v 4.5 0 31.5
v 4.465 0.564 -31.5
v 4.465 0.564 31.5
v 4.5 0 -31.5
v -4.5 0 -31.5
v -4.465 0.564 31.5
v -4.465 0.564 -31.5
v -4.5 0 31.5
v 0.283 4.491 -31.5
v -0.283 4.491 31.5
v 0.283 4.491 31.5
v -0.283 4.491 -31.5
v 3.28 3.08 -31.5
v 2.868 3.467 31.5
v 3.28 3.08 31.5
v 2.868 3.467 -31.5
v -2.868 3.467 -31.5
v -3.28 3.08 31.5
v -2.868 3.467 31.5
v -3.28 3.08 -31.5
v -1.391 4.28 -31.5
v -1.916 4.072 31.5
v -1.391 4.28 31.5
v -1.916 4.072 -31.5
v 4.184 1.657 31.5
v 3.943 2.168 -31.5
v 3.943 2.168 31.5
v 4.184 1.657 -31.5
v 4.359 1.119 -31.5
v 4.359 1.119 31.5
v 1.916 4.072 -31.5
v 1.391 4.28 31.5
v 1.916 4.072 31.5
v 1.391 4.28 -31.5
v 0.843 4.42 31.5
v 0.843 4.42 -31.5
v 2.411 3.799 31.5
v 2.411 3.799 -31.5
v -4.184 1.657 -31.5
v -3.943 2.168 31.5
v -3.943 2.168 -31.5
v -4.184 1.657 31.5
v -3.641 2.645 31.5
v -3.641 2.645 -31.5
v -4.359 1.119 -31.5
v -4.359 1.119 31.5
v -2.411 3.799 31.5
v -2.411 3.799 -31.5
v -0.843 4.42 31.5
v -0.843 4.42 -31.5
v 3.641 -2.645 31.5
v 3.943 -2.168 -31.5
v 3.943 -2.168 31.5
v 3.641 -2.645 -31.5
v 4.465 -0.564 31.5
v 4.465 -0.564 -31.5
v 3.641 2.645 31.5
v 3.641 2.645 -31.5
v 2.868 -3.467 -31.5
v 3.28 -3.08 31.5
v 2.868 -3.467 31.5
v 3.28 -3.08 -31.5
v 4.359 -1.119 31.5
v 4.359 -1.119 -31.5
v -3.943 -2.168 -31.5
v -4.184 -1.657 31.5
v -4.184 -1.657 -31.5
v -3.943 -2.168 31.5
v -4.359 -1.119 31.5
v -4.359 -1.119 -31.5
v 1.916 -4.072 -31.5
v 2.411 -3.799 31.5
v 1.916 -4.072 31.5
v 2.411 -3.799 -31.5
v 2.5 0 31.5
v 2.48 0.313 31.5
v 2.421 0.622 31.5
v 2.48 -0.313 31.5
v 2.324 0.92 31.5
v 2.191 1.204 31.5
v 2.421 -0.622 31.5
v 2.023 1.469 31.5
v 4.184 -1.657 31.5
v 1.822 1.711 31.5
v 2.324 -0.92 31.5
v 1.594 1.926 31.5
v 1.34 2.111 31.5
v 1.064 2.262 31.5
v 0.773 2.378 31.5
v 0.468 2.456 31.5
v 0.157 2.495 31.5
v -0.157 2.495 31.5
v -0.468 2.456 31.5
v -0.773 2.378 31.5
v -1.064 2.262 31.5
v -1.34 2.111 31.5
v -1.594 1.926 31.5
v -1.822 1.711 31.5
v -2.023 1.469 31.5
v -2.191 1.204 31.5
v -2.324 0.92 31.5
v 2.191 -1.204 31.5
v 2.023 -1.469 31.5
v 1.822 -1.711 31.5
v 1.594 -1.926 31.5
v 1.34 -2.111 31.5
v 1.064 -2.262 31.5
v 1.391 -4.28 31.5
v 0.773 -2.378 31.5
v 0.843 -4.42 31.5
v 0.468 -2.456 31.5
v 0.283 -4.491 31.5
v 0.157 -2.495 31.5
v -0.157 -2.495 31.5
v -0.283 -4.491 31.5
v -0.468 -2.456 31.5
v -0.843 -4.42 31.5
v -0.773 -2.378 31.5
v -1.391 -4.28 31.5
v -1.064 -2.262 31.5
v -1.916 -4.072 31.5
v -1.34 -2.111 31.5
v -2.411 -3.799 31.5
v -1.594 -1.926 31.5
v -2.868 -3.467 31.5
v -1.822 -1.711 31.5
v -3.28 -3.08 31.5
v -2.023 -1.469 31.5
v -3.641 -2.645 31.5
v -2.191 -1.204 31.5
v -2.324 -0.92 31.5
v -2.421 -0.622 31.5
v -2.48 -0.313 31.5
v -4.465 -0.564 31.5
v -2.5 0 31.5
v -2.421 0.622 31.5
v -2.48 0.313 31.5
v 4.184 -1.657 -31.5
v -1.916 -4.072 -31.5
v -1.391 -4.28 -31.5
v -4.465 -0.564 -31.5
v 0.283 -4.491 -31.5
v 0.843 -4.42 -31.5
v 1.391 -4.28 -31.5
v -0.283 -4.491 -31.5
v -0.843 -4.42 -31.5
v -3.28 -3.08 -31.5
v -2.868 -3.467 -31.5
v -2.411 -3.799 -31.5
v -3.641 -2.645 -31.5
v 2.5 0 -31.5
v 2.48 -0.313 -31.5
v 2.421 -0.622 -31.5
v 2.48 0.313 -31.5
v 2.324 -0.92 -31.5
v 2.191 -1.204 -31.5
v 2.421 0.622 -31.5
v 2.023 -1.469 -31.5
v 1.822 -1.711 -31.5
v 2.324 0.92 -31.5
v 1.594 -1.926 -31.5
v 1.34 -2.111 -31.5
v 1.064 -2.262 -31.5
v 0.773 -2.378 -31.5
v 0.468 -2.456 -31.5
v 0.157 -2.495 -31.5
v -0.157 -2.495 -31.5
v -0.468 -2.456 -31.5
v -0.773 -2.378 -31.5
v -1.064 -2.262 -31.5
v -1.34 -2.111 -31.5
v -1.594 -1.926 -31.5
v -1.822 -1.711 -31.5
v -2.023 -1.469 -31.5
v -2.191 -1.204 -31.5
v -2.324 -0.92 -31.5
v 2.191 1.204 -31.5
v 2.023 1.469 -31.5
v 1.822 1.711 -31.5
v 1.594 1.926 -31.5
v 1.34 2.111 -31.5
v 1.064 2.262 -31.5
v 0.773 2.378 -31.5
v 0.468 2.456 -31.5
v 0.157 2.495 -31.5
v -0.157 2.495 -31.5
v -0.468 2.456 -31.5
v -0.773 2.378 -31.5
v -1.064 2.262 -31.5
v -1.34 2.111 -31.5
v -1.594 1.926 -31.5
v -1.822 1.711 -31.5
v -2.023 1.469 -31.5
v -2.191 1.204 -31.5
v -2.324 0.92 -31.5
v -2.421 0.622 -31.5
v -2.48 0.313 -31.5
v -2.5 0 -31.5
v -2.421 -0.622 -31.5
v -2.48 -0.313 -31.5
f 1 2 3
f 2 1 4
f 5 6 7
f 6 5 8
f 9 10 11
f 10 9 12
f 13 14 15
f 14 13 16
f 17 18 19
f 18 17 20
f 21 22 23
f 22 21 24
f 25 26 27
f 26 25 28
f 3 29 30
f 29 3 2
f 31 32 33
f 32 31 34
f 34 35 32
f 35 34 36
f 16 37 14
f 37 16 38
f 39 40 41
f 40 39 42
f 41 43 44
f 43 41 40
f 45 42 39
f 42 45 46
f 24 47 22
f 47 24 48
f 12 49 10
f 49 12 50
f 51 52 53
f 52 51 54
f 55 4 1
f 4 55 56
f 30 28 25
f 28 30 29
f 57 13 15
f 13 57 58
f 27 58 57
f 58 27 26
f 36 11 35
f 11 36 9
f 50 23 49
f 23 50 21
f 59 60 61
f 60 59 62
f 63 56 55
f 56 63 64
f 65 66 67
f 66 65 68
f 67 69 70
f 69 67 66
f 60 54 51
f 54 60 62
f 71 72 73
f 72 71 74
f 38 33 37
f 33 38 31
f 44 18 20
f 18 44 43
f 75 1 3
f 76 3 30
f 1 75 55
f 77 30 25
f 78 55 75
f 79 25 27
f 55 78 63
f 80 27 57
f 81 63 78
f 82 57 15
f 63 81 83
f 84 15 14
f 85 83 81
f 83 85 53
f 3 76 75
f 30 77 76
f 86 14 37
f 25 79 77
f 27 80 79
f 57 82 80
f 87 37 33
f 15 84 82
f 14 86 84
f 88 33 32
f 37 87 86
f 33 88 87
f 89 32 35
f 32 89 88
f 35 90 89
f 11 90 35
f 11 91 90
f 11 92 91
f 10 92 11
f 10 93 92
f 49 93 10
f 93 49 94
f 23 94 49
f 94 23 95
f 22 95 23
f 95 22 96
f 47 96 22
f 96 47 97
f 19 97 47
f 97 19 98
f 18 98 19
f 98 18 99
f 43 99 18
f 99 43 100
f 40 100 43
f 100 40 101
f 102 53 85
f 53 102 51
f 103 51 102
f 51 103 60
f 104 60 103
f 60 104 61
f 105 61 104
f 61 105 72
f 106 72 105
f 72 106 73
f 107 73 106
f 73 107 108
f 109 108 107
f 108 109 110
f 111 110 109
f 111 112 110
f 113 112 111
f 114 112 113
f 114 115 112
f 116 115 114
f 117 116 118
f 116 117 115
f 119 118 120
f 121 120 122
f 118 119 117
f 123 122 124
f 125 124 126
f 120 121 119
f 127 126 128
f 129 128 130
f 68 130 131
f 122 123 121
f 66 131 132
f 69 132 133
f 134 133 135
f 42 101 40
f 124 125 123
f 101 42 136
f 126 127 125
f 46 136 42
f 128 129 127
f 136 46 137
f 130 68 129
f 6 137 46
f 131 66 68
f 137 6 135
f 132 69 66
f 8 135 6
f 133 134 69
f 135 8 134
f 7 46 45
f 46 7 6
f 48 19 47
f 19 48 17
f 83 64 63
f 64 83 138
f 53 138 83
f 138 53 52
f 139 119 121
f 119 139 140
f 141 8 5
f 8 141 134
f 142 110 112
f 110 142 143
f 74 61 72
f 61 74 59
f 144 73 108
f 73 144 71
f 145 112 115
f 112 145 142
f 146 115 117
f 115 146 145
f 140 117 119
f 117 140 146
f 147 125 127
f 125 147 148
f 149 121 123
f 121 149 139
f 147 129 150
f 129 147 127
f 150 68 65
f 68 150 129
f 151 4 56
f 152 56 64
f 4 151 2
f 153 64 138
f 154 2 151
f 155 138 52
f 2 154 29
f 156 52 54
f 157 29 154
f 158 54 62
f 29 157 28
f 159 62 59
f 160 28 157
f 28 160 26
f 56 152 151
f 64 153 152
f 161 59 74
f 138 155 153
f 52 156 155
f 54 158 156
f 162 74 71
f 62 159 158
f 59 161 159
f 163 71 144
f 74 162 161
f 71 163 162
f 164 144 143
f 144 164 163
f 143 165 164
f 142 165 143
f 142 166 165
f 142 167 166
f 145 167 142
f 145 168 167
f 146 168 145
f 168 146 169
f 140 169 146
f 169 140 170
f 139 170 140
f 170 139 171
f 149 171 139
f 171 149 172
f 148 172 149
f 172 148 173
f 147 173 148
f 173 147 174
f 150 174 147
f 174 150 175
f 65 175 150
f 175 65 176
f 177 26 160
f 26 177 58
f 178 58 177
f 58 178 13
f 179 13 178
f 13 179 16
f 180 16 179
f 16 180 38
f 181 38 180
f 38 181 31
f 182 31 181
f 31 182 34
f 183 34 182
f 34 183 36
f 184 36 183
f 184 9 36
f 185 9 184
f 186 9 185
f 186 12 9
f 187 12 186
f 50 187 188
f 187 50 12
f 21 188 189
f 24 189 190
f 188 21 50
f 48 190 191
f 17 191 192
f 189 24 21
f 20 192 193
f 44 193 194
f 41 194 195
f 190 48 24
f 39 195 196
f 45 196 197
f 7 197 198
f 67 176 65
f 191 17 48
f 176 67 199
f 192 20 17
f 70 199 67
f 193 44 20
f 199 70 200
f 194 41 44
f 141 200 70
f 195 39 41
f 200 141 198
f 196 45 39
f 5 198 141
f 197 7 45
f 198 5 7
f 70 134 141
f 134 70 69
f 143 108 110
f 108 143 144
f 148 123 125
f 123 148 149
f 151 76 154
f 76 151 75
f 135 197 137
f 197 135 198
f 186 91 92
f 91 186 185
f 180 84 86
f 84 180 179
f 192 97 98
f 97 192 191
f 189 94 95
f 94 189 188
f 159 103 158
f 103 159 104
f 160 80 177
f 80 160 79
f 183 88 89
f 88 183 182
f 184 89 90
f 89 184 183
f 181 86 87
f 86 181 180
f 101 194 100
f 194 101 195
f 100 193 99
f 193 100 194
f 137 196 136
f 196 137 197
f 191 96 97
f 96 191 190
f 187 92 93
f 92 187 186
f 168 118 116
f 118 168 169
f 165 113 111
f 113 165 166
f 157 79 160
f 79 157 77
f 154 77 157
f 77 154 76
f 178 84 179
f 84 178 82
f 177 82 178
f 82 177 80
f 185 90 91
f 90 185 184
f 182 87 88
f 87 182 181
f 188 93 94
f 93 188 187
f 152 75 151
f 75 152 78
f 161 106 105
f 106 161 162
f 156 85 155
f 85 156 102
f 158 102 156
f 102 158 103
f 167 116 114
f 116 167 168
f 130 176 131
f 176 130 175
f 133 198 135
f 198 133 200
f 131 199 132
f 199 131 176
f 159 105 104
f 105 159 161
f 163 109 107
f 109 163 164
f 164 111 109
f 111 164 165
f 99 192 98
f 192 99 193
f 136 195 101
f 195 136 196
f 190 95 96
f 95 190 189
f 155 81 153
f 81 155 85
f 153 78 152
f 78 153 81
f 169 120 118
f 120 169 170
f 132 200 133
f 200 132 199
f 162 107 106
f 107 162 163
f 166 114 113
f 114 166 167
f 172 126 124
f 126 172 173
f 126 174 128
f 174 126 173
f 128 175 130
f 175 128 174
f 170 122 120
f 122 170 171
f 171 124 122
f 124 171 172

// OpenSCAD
$fn = 50;


difference() {
	union() {
		translate(v = [0, 0, -31.5000000000]) {
			cylinder(h = 63, r = 4.5000000000);
		}
	}
	union() {
		translate(v = [0, 0, -100.0000000000]) {
			cylinder(h = 200, r = 2.5000000000);
		}
	}
}
